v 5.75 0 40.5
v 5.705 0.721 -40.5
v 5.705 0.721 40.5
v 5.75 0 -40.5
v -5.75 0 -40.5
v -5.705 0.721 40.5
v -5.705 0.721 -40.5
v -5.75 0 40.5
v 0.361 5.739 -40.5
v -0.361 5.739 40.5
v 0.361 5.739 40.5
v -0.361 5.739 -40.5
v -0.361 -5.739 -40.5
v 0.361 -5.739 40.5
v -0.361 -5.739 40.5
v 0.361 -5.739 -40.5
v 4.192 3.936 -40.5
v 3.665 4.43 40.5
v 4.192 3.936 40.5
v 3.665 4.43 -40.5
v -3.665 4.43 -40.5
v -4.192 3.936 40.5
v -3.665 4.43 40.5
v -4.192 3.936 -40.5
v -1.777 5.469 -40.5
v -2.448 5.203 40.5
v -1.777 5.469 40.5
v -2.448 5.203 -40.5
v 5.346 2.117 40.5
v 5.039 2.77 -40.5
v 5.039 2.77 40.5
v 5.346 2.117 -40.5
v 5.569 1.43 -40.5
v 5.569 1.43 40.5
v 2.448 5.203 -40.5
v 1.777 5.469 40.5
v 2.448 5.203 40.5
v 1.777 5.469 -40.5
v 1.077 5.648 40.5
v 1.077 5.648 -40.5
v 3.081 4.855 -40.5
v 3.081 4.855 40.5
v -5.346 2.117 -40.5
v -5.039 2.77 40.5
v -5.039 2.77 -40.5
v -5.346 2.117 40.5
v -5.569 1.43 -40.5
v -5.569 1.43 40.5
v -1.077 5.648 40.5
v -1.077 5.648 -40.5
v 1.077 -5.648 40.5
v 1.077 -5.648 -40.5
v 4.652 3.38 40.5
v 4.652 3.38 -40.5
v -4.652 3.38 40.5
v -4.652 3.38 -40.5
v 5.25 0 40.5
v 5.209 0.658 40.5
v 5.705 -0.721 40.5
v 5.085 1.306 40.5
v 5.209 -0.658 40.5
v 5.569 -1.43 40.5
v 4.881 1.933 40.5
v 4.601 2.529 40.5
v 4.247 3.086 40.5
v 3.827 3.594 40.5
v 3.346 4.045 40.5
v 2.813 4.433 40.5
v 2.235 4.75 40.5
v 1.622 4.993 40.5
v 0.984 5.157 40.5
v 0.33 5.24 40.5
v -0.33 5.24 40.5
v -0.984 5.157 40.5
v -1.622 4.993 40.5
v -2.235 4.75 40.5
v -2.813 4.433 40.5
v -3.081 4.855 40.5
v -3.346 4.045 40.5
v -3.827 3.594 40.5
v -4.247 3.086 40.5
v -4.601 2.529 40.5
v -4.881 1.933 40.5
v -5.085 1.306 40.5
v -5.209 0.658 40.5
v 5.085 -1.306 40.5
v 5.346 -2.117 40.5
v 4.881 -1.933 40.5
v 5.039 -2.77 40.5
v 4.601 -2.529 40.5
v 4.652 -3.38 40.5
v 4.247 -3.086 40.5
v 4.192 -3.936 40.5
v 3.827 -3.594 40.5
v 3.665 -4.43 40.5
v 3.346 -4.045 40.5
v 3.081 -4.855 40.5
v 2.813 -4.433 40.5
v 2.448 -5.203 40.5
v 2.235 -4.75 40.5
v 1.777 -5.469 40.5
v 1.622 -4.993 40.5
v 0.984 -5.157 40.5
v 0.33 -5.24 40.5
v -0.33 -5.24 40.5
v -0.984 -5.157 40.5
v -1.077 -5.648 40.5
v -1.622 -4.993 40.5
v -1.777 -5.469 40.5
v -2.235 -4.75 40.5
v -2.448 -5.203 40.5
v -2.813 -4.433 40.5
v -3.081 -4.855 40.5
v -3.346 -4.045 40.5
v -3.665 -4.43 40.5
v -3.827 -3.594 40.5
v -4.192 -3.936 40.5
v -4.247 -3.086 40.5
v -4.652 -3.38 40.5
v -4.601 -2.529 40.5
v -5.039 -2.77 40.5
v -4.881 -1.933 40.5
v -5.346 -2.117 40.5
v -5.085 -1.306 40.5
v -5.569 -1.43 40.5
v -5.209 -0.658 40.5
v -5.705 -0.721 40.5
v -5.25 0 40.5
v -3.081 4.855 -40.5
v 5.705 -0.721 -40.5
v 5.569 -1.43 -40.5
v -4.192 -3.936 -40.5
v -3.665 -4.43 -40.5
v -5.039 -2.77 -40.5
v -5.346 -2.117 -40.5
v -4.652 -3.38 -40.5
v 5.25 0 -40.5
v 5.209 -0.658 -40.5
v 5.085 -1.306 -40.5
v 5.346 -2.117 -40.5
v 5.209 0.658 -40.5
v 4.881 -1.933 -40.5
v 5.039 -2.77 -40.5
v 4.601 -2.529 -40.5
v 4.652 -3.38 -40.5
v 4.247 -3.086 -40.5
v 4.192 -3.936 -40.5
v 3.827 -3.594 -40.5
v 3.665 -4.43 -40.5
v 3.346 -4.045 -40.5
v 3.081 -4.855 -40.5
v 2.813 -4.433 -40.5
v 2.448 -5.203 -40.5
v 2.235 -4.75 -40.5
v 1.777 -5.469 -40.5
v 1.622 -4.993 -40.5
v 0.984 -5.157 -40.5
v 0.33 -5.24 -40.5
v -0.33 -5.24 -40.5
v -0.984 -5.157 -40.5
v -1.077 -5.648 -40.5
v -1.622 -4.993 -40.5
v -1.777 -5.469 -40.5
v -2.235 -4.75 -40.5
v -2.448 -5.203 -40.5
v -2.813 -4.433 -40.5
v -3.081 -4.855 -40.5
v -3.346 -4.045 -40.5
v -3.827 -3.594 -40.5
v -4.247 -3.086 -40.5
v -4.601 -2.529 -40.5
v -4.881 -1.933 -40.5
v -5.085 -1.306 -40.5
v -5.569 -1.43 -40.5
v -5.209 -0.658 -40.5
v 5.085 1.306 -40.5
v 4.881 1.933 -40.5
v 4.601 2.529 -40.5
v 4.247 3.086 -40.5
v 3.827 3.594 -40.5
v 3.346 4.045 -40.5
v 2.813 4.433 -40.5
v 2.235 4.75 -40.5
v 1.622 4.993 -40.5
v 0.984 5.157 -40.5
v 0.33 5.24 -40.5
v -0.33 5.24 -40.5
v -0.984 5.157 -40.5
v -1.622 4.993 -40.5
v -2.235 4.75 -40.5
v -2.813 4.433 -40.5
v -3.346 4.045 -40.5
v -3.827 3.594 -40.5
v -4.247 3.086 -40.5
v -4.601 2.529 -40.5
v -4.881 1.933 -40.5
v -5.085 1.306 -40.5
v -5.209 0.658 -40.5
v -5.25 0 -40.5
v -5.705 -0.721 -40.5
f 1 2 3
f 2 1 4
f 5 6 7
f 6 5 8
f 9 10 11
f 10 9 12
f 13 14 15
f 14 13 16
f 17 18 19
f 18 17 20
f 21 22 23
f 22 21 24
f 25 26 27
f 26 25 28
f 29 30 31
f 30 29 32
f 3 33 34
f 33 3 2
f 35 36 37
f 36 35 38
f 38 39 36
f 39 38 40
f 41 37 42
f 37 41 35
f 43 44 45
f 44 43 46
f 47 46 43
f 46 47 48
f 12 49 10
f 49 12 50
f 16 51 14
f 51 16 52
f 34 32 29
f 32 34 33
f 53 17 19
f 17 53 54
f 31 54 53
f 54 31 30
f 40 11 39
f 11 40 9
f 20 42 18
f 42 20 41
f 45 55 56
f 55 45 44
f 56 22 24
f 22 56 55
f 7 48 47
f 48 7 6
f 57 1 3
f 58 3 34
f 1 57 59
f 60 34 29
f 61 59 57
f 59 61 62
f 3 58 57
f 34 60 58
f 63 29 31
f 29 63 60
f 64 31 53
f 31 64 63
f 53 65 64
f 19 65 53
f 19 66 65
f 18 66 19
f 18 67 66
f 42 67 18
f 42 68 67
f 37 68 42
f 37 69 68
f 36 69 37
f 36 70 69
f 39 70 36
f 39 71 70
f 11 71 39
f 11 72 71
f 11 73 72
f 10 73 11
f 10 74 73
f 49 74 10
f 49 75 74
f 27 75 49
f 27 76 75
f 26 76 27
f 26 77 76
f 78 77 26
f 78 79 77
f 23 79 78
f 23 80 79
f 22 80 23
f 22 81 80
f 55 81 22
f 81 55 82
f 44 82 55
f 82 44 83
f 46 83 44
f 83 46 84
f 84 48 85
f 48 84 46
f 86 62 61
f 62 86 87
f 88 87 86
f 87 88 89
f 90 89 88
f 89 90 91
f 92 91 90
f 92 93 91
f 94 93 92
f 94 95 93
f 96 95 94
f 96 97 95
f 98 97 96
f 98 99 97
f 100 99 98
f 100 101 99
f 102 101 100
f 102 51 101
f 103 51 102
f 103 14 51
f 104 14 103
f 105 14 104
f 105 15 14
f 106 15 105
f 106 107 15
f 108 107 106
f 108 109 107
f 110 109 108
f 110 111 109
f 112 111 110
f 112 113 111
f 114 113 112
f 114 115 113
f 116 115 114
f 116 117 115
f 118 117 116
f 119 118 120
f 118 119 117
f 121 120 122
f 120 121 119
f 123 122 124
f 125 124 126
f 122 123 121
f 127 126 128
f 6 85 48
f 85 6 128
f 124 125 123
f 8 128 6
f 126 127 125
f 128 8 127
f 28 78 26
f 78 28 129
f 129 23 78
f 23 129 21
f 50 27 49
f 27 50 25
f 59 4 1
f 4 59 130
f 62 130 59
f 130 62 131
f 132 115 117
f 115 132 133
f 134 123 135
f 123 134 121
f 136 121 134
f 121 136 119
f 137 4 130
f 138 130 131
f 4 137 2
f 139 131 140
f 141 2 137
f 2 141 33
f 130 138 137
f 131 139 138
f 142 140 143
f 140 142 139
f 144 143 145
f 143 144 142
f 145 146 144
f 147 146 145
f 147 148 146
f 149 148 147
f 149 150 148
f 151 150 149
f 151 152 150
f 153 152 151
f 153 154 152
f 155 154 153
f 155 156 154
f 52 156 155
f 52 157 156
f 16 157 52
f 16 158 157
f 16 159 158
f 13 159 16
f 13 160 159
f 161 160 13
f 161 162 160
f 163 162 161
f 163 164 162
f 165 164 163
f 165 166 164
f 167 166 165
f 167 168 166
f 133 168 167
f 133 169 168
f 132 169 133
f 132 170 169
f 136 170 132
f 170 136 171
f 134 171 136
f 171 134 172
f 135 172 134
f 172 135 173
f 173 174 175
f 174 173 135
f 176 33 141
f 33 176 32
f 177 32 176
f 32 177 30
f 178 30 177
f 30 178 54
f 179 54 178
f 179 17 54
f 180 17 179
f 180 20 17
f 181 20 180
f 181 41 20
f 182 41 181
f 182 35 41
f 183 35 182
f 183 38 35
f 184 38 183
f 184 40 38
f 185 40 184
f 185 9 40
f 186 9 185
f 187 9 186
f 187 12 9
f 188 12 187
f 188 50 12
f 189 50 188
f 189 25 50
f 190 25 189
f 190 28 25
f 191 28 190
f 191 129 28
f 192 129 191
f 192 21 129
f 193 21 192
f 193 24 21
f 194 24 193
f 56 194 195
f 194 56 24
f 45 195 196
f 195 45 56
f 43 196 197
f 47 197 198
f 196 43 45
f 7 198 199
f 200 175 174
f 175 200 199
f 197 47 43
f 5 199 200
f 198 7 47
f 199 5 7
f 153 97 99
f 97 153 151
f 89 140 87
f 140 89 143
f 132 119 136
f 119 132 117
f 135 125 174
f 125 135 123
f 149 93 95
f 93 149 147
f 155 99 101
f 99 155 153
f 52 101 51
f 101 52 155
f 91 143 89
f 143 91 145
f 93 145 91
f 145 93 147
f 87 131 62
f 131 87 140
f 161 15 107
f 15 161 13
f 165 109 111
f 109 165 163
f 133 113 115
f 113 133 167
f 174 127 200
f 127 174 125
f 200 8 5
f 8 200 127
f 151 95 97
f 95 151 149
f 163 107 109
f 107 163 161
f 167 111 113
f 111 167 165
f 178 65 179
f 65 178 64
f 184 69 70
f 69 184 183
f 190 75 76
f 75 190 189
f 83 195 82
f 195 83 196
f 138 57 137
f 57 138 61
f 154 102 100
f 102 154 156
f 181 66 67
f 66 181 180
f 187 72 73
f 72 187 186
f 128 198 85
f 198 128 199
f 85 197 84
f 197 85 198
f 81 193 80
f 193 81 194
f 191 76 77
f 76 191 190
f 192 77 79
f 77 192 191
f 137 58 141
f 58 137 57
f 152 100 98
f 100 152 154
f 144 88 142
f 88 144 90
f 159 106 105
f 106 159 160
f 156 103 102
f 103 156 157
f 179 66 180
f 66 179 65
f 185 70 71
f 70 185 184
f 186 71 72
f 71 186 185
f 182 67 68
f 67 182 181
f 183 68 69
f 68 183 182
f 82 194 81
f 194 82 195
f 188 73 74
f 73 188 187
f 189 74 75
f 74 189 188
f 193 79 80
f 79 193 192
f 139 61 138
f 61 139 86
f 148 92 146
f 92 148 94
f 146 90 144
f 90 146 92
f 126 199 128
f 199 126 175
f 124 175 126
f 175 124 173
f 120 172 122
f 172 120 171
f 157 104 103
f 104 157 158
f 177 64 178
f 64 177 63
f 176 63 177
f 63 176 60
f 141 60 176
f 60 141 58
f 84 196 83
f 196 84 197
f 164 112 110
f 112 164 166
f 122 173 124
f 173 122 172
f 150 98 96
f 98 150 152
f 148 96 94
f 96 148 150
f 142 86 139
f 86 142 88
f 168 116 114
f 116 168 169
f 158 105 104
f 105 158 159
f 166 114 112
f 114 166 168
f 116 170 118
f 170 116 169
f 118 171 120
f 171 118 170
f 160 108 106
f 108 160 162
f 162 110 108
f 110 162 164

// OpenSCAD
$fn = 50;


difference() {
	union() {
		translate(v = [0, 0, -40.5000000000]) {
			cylinder(h = 81, r = 5.7500000000);
		}
	}
	union() {
		translate(v = [0, 0, -100.0000000000]) {
			cylinder(h = 200, r = 5.2500000000);
		}
	}
}
